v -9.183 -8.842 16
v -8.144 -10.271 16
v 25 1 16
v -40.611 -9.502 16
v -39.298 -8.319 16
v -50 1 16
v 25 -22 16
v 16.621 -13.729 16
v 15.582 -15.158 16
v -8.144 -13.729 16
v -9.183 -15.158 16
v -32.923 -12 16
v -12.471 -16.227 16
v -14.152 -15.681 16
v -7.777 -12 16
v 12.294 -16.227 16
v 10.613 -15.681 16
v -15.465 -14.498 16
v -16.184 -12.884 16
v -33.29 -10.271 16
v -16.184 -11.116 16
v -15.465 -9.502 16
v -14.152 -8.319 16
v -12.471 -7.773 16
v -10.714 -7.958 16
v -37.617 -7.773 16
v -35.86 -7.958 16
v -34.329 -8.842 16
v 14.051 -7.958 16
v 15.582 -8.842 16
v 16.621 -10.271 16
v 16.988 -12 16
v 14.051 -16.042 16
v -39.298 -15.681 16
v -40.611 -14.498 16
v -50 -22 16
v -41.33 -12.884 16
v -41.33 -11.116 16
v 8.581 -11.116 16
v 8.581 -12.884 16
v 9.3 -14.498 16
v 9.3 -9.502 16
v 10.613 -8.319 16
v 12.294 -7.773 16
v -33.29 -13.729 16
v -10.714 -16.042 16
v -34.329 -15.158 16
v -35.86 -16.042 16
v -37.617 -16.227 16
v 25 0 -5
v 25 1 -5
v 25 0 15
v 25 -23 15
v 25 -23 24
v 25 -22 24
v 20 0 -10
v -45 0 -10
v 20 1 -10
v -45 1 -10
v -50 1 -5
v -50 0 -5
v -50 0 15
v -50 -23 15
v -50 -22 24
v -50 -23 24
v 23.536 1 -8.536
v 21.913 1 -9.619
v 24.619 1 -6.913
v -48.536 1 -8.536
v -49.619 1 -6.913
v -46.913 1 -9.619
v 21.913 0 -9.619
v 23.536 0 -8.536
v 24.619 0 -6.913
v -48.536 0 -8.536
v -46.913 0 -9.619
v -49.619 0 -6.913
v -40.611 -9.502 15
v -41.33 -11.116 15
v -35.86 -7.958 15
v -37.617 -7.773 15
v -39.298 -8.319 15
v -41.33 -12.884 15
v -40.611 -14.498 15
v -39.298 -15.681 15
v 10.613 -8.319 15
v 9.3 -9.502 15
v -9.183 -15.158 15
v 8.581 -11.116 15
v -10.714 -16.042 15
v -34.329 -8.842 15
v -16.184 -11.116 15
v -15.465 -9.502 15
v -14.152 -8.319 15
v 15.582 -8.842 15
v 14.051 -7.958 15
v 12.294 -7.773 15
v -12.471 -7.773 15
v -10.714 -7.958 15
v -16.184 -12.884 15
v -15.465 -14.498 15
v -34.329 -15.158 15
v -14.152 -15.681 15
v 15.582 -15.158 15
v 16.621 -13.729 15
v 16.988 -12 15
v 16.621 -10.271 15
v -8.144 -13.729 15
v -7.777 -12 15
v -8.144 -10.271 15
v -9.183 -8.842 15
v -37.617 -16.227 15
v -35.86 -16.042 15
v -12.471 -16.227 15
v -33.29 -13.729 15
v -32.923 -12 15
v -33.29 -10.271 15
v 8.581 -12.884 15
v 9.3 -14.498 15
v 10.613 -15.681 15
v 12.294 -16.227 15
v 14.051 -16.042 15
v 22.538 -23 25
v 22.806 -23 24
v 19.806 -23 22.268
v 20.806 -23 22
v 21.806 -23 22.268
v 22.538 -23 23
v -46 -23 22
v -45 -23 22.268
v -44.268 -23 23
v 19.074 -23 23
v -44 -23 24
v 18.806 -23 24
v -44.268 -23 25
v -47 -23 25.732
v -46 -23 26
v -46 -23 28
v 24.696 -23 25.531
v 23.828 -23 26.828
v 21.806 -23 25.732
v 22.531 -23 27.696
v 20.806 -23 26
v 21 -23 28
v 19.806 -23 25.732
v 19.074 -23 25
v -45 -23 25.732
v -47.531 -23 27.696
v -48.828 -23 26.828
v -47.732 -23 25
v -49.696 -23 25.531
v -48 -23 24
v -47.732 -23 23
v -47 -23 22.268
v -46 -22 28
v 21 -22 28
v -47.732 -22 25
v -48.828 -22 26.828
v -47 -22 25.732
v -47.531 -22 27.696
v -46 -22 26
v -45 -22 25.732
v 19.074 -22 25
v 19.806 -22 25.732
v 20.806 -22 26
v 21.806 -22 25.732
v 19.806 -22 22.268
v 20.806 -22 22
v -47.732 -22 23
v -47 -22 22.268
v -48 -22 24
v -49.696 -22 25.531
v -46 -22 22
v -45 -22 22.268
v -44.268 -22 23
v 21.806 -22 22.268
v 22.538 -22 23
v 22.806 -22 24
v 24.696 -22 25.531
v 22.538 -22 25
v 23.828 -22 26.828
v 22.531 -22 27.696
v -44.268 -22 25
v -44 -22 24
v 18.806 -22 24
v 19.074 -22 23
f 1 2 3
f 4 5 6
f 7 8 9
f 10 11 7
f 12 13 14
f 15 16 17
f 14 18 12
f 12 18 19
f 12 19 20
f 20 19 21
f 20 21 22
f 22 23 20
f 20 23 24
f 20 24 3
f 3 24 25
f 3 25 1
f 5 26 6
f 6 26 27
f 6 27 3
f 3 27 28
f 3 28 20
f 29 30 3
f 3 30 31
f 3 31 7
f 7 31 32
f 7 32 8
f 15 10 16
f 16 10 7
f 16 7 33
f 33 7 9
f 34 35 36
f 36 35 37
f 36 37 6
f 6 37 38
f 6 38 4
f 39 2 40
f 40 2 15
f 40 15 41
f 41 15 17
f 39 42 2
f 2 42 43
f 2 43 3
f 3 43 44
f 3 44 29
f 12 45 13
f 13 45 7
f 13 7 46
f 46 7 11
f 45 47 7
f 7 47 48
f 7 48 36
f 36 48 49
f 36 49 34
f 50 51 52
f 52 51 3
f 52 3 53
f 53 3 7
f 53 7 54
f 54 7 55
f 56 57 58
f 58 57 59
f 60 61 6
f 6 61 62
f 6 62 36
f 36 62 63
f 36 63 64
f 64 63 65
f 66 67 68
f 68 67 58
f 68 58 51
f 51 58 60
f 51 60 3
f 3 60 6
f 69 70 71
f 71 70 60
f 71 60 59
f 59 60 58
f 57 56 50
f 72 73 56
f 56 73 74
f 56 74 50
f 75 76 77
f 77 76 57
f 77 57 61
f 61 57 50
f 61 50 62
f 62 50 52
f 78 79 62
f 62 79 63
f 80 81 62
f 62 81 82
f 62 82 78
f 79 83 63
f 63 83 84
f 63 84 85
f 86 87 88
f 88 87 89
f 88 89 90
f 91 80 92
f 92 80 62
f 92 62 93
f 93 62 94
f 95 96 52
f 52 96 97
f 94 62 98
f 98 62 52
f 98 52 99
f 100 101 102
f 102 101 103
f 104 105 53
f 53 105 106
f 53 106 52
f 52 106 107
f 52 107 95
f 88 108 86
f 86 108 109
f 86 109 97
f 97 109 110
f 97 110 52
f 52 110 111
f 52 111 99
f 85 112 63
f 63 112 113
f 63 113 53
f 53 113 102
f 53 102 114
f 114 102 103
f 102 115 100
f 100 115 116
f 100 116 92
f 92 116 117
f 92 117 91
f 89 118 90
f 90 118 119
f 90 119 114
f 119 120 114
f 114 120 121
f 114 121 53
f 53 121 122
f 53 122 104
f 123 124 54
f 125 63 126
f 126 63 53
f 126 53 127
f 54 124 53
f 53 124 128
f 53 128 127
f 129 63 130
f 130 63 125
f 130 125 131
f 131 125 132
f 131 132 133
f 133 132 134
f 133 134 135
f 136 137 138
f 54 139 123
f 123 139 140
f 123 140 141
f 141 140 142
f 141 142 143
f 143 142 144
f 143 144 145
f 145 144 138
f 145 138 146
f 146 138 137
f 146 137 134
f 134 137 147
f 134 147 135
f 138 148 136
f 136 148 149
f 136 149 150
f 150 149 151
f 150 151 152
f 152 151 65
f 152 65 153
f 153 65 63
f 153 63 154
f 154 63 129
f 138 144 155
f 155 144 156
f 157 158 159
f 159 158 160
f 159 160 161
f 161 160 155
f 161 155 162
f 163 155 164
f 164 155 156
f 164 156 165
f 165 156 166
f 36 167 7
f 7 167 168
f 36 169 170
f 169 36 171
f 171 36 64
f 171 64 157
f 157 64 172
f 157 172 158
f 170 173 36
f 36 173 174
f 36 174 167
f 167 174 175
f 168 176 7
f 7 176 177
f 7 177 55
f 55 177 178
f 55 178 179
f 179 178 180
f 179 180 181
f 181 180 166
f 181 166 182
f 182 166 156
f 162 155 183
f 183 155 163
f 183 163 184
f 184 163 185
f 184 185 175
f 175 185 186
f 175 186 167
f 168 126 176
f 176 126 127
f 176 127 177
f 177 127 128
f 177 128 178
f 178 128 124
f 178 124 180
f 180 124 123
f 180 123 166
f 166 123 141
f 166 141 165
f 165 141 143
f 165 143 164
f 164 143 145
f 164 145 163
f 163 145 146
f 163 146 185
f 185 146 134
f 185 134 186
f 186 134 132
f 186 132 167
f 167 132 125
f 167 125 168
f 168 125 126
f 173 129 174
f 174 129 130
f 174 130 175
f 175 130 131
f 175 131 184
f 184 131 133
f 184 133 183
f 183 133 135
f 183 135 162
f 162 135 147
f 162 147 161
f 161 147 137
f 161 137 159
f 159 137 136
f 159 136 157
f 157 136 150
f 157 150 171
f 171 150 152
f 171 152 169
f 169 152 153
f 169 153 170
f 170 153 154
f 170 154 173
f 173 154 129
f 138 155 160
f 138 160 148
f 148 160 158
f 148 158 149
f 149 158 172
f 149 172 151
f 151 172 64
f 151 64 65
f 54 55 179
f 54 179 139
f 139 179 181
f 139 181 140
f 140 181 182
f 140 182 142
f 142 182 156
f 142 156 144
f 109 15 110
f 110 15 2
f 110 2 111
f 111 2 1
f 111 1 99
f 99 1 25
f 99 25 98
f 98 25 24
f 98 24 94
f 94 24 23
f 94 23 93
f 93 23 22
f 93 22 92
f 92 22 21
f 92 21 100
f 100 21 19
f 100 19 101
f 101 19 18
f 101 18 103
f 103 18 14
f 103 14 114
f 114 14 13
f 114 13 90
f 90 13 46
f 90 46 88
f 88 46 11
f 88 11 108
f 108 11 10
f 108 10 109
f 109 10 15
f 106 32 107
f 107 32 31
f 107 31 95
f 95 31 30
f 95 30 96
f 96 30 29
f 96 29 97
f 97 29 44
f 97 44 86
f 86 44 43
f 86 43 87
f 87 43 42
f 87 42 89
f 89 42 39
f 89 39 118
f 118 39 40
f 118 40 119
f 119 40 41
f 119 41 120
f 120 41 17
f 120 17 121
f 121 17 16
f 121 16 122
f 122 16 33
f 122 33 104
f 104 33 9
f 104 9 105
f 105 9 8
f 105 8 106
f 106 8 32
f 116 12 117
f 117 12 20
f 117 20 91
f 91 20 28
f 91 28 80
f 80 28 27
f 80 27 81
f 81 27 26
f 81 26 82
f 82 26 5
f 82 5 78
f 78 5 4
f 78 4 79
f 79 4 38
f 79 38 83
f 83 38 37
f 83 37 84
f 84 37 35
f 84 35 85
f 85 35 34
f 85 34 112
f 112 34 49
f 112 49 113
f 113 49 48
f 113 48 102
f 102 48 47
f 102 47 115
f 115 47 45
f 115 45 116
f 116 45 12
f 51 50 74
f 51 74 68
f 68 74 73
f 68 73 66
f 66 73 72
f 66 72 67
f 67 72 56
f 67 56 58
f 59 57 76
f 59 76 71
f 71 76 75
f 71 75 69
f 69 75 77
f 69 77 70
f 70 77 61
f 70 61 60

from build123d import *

# Parameters (mm, degrees)
SKETCH1_W           = 75
SKETCH1_H           = 25
BOSS_EXTRUDE1_DEPTH = 1
SKETCH3_W           = 75
SKETCH3_H           = 24
BOSS_EXTRUDE2_DEPTH = 1
SKETCH4_W           = 75
SKETCH4_H           = 12
SKETCH4_R           = 2
BOSS_EXTRUDE3_DEPTH = 1
FILLET1_R           = 4
CUT_EXTRUDE2_REACH  = 62.869
SKETCH6_R           = 4.25
FILLET2_R           = 5


with BuildPart() as part:
    # Sketch1 → Boss-Extrude1 (new body)
    with BuildSketch(Plane(origin=(0, 0, 0), x_dir=(1, 0, 0), z_dir=(0, 1, 0))):
        with Locations((-12.5, -2.5)):
            Rectangle(SKETCH1_W, SKETCH1_H)
    extrude(amount=BOSS_EXTRUDE1_DEPTH)

    # Sketch3 → Boss-Extrude2 (add)
    with BuildSketch(Plane.XY.offset(15)):
        with Locations((-12.5, -11)):
            Rectangle(SKETCH3_W, SKETCH3_H)
    extrude(amount=BOSS_EXTRUDE2_DEPTH)

    # Sketch4 → Boss-Extrude3 (add)
    with BuildSketch(Plane.XZ.offset(23)):
        with Locations((-12.5, 22)):
            Rectangle(SKETCH4_W, SKETCH4_H)
        with Locations(Location((20.805858618, 24, 0), (0, 0, 270))):
            Circle(SKETCH4_R, mode=Mode.SUBTRACT)
        with Locations(Location((-46, 24, 0), (0, 0, 270))):
            Circle(SKETCH4_R, mode=Mode.SUBTRACT)
    extrude(amount=-BOSS_EXTRUDE3_DEPTH)

    # Fillet1
    fillet1_edges = [part.edges().sort_by_distance(p)[0] for p in [
        (-50, -22.5, 28),
        (25, -22.5, 28),
    ]]
    fillet(fillet1_edges, radius=FILLET1_R)

    # Sketch6 → Cut-Extrude2 (cut, up to next)
    with BuildSketch(Plane.XY.offset(16), mode=Mode.PRIVATE) as cut_extrude2_sk1:
        with Locations((-37.172974346, -12)):
            Circle(SKETCH6_R)
    cut_extrude2_tool1 = extrude(cut_extrude2_sk1.sketch, amount=-CUT_EXTRUDE2_REACH, mode=Mode.PRIVATE) & part.part
    # Sketch6 → Cut-Extrude2 (cut, up to next)
    with BuildSketch(Plane.XY.offset(16), mode=Mode.PRIVATE) as cut_extrude2_sk2:
        with Locations((-12.026924054, -12)):
            Circle(SKETCH6_R)
    cut_extrude2_tool2 = extrude(cut_extrude2_sk2.sketch, amount=-CUT_EXTRUDE2_REACH, mode=Mode.PRIVATE) & part.part
    # Sketch6 → Cut-Extrude2 (cut, up to next)
    with BuildSketch(Plane.XY.offset(16), mode=Mode.PRIVATE) as cut_extrude2_sk3:
        with Locations((12.738125476, -12)):
            Circle(SKETCH6_R)
    cut_extrude2_tool3 = extrude(cut_extrude2_sk3.sketch, amount=-CUT_EXTRUDE2_REACH, mode=Mode.PRIVATE) & part.part
    add(cut_extrude2_tool1.solids().sort_by_distance((-37.172974, -12, 16))[0], mode=Mode.SUBTRACT)
    add(cut_extrude2_tool2.solids().sort_by_distance((-12.026924, -12, 16))[0], mode=Mode.SUBTRACT)
    add(cut_extrude2_tool3.solids().sort_by_distance((12.738125, -12, 16))[0], mode=Mode.SUBTRACT)

    # Fillet2
    fillet2_edges = [part.edges().sort_by_distance(p)[0] for p in [
        (-50, 0.5, -10),
        (25, 0.5, -10),
    ]]
    fillet(fillet2_edges, radius=FILLET2_R)


solid = part.part
